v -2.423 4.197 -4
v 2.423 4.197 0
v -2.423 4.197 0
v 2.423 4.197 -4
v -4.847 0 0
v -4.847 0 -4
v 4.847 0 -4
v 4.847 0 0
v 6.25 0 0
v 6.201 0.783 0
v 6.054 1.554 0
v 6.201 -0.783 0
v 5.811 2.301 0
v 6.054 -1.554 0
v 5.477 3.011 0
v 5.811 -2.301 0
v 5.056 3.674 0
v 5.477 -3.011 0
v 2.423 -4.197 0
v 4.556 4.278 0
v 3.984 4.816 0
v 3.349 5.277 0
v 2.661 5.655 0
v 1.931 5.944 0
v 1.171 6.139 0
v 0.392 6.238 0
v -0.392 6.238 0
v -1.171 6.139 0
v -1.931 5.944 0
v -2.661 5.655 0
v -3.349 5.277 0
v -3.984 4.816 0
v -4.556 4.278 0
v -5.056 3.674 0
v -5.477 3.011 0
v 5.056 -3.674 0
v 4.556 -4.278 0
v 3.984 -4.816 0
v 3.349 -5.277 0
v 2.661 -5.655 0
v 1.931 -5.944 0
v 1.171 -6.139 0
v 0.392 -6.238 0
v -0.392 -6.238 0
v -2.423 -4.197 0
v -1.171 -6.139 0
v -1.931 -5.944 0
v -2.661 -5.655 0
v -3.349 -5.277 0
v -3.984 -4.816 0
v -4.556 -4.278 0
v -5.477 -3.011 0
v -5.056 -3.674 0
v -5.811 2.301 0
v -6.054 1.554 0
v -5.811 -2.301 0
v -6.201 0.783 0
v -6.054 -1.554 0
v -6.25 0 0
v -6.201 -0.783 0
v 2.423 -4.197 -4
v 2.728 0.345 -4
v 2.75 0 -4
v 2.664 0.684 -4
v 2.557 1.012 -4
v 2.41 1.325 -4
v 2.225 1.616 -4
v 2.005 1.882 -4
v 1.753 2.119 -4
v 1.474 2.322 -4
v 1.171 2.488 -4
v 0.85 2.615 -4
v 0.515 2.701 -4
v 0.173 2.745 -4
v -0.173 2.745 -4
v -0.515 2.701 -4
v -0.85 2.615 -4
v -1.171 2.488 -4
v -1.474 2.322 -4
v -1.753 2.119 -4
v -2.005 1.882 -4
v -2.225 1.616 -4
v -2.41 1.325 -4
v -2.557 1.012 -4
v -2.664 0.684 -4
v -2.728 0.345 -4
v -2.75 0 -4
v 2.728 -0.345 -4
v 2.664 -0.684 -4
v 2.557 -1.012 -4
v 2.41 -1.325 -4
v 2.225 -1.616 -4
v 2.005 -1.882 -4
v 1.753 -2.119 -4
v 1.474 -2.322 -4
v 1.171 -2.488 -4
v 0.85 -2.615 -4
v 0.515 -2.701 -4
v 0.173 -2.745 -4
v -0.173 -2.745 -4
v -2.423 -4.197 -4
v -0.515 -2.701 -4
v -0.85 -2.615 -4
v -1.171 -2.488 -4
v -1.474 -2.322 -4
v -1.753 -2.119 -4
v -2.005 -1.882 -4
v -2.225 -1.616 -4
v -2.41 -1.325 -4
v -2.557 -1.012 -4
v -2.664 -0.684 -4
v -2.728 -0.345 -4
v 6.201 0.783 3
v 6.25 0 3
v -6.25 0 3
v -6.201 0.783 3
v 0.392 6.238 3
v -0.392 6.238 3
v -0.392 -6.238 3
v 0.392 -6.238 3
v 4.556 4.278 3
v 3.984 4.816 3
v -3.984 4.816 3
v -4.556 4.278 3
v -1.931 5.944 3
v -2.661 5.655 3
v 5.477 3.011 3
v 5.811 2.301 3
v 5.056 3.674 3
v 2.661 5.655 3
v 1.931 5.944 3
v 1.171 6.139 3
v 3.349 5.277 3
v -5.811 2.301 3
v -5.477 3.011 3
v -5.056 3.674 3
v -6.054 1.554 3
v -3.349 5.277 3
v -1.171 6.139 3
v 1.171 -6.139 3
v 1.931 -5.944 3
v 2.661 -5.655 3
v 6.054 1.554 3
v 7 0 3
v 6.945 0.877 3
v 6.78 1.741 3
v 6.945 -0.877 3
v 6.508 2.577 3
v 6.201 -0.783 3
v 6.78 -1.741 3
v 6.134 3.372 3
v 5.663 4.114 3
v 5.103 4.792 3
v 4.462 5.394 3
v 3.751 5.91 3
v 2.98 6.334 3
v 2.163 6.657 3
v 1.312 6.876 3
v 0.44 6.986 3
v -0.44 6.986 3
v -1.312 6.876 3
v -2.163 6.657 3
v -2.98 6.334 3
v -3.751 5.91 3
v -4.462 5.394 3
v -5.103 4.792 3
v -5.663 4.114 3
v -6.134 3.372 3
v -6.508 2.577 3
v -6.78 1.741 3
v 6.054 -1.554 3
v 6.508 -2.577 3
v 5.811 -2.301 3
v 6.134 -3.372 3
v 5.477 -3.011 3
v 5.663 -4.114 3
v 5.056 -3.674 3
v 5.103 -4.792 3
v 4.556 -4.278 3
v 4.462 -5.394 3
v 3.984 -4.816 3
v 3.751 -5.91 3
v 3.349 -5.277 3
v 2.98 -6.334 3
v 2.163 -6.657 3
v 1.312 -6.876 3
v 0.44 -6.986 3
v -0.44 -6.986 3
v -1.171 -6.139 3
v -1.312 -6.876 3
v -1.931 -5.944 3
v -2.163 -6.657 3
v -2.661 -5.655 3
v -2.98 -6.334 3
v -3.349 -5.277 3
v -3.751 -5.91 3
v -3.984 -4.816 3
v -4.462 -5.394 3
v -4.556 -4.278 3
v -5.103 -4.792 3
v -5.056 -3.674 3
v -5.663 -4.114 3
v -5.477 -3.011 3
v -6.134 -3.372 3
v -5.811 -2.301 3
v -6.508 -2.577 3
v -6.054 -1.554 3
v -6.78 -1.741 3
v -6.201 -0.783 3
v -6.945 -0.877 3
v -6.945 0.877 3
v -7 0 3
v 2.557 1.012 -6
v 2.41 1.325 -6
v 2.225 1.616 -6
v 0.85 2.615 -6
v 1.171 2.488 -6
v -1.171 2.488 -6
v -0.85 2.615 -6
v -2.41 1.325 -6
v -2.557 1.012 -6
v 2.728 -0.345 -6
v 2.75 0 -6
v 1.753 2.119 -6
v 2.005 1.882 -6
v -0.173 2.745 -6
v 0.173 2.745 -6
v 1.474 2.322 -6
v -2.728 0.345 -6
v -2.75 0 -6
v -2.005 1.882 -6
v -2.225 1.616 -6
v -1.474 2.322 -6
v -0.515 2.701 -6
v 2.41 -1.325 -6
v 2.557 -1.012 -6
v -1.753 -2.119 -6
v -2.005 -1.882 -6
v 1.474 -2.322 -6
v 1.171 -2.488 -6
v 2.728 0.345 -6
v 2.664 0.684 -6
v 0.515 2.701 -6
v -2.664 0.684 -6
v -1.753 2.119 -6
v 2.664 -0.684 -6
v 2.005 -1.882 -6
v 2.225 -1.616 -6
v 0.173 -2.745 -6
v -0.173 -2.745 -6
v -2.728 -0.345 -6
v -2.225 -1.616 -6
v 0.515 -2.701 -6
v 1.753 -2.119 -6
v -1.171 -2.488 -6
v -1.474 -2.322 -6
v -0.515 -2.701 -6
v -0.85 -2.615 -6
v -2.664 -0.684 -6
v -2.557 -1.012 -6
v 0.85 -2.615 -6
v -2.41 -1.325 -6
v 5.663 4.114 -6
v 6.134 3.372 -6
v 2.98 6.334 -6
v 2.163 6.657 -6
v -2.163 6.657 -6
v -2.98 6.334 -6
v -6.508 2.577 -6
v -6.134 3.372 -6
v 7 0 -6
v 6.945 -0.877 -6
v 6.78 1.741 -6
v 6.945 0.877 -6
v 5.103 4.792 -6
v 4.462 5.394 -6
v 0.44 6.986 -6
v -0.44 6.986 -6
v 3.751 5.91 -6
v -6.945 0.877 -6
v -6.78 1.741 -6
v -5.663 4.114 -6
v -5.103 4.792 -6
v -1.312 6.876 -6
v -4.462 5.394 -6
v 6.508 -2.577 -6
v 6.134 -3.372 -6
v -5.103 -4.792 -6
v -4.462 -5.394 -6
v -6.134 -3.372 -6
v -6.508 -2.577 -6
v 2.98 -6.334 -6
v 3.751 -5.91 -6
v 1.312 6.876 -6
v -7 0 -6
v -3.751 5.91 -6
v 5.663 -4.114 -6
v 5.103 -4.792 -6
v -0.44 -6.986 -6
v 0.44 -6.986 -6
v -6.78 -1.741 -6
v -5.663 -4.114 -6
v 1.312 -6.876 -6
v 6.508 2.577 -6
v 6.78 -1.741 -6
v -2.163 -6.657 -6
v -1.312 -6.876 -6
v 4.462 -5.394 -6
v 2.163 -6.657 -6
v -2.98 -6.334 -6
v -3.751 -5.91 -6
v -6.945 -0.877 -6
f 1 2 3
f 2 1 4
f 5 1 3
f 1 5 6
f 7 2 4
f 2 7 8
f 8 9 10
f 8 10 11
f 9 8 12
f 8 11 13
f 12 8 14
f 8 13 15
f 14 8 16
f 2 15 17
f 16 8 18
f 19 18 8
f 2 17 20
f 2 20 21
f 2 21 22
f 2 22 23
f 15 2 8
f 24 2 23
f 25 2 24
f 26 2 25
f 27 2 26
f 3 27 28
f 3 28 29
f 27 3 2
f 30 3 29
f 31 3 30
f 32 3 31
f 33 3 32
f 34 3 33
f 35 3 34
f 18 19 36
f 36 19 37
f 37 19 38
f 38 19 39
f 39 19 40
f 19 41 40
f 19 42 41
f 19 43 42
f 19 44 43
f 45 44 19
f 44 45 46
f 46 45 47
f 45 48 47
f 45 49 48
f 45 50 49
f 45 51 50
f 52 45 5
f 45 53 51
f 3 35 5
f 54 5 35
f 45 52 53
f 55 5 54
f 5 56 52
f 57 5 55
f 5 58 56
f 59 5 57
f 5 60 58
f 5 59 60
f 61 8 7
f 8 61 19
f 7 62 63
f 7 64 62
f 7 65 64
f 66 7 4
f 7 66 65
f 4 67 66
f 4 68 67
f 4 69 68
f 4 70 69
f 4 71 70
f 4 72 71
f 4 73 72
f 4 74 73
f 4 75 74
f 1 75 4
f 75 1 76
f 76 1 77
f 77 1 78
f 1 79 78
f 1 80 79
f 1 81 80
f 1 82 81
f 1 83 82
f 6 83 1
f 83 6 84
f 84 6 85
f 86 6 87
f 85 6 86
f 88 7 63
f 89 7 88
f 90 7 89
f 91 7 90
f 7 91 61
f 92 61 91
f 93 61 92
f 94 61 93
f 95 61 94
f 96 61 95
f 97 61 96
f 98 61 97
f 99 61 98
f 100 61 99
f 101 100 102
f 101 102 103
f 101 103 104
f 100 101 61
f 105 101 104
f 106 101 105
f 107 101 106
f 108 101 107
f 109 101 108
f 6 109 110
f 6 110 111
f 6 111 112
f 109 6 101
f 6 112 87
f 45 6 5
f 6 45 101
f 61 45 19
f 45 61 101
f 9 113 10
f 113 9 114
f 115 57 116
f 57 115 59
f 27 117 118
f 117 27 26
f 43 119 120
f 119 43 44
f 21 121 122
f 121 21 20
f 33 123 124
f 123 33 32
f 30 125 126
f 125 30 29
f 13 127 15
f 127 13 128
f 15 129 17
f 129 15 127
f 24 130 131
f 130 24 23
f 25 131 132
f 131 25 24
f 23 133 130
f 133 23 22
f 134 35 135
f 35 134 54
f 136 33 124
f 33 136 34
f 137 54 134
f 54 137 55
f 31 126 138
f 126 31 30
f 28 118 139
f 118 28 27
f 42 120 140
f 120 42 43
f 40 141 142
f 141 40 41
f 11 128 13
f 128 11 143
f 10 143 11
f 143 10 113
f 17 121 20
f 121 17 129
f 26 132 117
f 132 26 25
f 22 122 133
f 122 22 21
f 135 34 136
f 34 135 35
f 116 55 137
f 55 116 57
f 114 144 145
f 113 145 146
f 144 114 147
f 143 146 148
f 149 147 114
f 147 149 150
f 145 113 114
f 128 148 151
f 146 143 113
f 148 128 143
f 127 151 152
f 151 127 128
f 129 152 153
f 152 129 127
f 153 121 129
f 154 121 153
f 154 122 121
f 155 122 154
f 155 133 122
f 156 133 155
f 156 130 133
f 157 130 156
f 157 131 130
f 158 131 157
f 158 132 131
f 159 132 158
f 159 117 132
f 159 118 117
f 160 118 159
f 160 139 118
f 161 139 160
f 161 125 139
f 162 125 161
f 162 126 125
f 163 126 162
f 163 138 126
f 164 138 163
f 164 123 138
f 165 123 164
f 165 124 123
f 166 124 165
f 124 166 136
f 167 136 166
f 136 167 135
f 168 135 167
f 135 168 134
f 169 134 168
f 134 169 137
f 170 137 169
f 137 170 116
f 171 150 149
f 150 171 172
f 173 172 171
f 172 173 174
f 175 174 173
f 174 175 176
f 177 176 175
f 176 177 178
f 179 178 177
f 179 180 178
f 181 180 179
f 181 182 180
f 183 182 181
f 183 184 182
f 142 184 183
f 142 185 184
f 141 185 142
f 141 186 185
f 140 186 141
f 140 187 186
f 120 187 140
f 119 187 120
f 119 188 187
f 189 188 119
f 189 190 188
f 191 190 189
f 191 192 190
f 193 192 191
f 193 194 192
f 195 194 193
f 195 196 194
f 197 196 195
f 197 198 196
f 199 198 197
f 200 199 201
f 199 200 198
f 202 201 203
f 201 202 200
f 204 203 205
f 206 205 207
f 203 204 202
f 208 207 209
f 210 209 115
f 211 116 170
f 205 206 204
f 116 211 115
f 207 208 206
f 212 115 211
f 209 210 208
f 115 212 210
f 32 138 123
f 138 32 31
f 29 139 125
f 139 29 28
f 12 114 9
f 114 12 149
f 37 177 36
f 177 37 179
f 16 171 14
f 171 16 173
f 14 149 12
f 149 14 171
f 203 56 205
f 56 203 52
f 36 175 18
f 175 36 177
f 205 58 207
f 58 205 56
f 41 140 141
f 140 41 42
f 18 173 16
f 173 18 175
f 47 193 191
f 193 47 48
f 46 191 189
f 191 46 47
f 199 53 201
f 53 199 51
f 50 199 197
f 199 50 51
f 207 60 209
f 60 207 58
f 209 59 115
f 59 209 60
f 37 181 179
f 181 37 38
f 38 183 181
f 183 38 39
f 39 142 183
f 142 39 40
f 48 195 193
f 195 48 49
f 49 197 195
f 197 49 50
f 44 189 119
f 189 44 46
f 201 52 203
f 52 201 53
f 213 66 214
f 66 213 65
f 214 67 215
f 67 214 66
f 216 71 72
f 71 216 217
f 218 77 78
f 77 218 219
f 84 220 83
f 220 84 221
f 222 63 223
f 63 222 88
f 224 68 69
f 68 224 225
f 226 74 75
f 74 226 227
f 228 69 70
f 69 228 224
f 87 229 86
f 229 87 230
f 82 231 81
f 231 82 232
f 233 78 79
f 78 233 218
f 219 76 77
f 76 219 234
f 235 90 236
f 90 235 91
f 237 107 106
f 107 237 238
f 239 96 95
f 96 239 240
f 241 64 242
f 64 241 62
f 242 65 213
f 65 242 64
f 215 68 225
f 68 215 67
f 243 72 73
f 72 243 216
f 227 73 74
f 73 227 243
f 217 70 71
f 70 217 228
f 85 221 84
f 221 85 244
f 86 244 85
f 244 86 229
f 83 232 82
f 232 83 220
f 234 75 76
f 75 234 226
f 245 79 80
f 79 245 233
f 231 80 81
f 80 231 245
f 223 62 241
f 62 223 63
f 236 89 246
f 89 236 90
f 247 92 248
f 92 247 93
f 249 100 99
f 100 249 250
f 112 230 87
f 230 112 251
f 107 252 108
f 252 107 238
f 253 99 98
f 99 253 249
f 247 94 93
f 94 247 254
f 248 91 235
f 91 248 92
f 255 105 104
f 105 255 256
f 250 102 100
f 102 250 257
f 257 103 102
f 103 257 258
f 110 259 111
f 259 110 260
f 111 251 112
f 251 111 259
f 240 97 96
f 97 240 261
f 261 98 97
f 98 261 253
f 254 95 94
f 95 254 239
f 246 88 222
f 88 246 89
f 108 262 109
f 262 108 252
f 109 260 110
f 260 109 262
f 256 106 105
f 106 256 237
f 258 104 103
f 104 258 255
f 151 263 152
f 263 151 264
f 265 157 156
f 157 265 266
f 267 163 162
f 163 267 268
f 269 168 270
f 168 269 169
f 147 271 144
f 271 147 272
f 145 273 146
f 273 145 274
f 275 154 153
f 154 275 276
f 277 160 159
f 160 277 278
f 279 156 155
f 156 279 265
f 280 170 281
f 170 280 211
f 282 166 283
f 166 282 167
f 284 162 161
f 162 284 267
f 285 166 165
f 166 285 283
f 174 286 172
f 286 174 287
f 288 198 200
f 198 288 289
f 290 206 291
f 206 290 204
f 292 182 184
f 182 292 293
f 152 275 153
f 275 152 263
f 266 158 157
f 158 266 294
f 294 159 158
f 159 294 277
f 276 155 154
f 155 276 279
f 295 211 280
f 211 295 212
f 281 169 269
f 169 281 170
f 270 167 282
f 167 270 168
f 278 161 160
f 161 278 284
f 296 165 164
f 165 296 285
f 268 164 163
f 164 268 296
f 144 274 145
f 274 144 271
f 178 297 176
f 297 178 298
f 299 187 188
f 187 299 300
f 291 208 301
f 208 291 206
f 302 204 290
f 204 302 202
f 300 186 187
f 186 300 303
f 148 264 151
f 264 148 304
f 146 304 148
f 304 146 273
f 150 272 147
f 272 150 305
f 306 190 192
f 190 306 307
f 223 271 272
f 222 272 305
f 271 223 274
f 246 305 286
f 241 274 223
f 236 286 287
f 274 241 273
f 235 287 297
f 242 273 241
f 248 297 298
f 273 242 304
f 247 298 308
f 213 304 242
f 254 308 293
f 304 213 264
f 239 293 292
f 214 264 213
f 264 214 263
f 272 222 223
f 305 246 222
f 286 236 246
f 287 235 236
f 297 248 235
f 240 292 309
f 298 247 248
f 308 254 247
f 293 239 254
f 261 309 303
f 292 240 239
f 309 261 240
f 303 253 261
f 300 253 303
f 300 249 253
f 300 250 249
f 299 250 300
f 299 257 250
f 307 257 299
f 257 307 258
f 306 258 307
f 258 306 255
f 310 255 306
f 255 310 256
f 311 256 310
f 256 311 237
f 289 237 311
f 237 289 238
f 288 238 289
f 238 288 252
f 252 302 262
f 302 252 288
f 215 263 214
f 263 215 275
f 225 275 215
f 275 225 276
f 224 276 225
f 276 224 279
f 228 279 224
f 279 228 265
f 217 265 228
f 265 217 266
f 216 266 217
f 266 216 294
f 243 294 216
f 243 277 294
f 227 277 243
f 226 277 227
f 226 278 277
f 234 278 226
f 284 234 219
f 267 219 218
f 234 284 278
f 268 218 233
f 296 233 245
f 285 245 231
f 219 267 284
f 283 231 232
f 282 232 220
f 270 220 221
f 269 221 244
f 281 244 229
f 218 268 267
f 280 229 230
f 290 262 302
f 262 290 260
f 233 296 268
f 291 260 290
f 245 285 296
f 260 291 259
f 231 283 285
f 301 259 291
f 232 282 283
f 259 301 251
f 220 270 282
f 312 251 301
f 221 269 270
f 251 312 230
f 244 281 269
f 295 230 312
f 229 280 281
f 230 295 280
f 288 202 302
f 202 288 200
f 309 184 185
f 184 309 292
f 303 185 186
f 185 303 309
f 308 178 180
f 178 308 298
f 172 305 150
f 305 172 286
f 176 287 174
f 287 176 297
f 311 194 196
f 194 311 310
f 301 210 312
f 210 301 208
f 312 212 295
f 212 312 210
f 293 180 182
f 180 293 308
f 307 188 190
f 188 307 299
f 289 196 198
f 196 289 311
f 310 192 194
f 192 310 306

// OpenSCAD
$fn = 50;

difference() {
	union() {
		translate(v = [0, 0, -6.0]) {
			cylinder(h = 9.0, r = 7.0);
		}
	}
	union() {
		translate(v = [0, 0, 0]) {
			rotate(a = [0, 0, 0]) {
				difference() {
					union() {
						translate(v = [0, 0, -4]) {
							linear_extrude(height = 4) {
								polygon(points = [[4.8468, 0.0], [2.4234000000000004, 4.197451927062417], [-2.423399999999999, 4.197451927062417], [-4.8468, 5.935618106107392e-16], [-2.423400000000002, -4.197451927062416], [2.423399999999997, -4.197451927062419]]);
							}
						}
					}
					union();
				}
			}
		}
		#cylinder(h = 3, r = 6.25);
		#translate(v = [0, 0, -100.0]) {
			cylinder(h = 200, r = 2.75);
		}
	}
}
